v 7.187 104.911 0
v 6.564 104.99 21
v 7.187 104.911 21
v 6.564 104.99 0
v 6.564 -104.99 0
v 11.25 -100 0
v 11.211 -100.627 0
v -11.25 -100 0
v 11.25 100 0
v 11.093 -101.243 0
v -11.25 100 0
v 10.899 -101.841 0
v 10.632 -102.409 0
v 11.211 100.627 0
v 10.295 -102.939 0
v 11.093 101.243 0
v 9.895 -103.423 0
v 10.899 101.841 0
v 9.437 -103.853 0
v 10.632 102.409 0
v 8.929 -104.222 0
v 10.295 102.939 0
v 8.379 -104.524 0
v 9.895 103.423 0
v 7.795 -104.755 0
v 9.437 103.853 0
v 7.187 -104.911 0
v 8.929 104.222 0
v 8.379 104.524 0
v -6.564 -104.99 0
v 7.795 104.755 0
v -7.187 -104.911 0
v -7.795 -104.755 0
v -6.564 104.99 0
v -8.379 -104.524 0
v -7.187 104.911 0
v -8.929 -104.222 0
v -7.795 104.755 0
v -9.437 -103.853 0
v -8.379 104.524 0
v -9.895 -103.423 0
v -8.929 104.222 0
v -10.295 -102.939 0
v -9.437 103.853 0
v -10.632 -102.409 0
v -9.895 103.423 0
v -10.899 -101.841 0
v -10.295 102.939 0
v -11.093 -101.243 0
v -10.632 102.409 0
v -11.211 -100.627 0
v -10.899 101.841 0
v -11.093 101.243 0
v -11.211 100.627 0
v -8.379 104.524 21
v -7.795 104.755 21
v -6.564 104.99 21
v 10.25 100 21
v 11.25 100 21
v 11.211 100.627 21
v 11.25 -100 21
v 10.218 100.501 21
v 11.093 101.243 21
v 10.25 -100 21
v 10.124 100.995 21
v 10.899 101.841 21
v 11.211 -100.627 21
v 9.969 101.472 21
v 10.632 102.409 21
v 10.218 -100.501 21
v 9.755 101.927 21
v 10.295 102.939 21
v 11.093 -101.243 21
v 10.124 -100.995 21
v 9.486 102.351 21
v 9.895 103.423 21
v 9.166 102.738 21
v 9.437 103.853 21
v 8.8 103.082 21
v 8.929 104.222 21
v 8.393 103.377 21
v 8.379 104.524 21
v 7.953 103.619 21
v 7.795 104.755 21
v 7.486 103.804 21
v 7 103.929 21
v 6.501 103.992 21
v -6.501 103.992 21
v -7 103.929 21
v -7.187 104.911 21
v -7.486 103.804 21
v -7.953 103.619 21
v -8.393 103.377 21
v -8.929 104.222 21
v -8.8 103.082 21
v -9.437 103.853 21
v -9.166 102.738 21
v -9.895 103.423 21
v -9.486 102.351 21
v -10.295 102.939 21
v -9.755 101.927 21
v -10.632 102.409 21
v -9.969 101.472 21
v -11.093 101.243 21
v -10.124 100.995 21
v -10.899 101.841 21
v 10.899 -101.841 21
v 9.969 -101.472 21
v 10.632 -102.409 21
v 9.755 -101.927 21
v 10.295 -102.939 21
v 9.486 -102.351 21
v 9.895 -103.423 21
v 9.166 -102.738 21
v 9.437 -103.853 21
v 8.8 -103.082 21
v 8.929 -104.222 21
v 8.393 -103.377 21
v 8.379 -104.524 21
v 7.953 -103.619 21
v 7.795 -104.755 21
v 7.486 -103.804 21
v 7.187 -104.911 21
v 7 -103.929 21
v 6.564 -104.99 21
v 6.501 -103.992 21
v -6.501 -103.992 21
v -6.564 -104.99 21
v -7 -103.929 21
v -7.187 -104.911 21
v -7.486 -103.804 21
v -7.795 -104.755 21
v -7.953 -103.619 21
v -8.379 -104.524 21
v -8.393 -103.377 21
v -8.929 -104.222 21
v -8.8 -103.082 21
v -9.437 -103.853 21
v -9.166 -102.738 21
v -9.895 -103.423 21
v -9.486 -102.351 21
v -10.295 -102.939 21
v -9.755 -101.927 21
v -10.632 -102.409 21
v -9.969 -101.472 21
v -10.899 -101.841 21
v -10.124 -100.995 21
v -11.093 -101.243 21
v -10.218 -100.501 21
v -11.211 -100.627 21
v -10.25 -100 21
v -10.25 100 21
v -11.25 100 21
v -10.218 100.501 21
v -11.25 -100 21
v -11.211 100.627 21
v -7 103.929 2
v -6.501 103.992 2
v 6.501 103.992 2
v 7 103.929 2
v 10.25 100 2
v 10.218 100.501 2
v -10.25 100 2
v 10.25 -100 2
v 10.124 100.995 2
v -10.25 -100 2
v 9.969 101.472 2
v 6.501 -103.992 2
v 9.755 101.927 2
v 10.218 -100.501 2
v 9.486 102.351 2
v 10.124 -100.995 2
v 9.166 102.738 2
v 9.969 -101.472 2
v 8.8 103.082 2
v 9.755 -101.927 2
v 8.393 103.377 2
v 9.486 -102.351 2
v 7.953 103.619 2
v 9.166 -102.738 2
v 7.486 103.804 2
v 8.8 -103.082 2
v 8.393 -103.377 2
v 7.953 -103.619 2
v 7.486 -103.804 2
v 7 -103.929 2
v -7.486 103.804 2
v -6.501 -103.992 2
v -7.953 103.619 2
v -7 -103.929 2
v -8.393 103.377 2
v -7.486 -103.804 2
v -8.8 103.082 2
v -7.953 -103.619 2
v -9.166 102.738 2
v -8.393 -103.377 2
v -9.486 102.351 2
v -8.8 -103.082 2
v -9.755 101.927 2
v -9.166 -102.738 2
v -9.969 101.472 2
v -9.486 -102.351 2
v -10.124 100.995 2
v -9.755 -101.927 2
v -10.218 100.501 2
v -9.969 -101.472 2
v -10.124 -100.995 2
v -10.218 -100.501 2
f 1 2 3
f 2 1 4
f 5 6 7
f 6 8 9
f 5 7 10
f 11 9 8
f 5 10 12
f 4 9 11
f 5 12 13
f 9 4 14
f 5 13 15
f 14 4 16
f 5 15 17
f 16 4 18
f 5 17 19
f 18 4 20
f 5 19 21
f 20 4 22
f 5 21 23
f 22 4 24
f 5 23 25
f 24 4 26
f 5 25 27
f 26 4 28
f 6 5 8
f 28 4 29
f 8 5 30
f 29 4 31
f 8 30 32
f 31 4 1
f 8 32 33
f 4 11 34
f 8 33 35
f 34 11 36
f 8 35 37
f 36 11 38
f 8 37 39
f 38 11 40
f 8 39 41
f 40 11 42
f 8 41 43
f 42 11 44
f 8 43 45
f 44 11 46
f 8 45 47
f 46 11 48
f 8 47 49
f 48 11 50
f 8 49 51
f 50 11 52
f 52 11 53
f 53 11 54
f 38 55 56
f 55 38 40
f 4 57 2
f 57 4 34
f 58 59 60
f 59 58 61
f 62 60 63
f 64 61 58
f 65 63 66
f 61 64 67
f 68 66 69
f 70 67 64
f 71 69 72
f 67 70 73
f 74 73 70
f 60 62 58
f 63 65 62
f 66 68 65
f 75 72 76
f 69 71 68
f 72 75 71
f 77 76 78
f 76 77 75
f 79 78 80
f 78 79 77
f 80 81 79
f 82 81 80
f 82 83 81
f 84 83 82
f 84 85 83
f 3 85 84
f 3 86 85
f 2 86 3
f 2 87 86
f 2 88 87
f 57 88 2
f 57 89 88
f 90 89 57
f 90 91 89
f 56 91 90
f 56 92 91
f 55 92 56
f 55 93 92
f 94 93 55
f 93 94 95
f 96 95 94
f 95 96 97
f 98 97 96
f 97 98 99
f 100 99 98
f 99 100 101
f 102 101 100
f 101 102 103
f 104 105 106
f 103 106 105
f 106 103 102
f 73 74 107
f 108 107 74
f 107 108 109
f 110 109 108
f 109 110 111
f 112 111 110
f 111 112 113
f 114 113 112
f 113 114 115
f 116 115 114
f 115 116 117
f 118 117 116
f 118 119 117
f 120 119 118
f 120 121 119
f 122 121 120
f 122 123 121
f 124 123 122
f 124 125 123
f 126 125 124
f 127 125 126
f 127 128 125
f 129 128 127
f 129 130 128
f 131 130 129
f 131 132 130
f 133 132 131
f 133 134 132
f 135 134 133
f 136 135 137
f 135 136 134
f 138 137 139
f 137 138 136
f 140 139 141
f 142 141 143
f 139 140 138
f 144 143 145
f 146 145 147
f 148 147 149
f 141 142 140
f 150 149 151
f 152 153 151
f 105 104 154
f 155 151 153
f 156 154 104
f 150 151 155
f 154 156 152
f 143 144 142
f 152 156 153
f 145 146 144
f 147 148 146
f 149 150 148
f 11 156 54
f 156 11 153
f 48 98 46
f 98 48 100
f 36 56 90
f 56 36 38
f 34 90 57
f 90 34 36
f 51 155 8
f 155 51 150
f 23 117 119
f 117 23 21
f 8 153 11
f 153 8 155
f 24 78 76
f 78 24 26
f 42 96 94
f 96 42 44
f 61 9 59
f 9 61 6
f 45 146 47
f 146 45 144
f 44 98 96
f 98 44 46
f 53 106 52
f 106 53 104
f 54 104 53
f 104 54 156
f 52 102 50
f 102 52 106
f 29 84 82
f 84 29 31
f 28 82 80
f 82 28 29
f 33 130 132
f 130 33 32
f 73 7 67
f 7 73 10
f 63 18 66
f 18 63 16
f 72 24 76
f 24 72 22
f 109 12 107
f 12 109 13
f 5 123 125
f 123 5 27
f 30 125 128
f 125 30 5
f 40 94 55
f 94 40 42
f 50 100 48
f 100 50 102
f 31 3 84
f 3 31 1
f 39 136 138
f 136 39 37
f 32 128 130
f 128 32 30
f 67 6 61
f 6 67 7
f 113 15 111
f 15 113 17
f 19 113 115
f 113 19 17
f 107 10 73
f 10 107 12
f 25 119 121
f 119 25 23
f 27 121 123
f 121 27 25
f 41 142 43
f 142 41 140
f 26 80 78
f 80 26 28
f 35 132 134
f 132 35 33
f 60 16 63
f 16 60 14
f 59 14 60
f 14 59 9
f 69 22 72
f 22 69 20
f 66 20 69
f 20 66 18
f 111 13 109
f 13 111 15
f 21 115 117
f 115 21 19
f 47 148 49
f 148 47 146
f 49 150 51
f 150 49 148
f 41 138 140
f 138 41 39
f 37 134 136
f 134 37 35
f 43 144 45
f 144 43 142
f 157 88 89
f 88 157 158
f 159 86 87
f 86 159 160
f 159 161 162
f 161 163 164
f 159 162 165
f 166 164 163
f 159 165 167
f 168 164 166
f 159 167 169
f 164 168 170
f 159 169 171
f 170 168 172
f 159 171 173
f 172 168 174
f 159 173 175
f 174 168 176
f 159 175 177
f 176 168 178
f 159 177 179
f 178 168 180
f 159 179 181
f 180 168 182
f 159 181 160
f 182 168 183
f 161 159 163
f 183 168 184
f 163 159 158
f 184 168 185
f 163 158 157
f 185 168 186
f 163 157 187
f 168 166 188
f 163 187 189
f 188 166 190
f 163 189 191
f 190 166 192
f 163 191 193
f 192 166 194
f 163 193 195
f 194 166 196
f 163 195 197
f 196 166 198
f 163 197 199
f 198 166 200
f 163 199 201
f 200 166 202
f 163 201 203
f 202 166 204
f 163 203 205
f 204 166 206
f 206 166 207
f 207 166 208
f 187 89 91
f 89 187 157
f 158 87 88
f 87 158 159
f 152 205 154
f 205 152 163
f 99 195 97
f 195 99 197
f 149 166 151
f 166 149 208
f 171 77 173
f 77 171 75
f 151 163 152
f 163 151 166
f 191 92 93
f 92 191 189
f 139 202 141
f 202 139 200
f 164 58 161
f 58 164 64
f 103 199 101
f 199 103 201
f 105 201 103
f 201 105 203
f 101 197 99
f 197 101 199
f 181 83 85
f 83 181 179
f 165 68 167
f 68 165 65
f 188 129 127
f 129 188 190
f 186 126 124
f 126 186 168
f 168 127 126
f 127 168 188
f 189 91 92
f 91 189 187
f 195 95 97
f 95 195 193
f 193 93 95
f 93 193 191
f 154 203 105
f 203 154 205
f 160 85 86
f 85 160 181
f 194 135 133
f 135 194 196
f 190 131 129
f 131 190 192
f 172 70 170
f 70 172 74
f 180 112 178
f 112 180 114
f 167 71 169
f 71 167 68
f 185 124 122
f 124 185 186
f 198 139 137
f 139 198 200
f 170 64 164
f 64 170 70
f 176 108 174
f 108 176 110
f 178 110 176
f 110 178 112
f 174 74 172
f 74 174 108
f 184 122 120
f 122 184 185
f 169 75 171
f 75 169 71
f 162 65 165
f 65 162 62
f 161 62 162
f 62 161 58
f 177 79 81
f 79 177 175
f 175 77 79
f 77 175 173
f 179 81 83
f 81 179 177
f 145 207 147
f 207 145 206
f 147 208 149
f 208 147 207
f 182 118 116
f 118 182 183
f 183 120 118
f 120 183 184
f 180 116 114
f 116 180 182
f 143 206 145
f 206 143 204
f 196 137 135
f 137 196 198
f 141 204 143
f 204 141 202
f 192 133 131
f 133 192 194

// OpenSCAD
$fn = 50;


difference() {
	union() {
		hull() {
			translate(v = [-6.2500000000, 100.0000000000, 0]) {
				cylinder(h = 21, r = 5);
			}
			translate(v = [6.2500000000, 100.0000000000, 0]) {
				cylinder(h = 21, r = 5);
			}
			translate(v = [-6.2500000000, -100.0000000000, 0]) {
				cylinder(h = 21, r = 5);
			}
			translate(v = [6.2500000000, -100.0000000000, 0]) {
				cylinder(h = 21, r = 5);
			}
		}
	}
	union() {
		translate(v = [0, 0, 2]) {
			hull() {
				translate(v = [-6.2500000000, 100.0000000000, 0]) {
					cylinder(h = 19, r = 4);
				}
				translate(v = [6.2500000000, 100.0000000000, 0]) {
					cylinder(h = 19, r = 4);
				}
				translate(v = [-6.2500000000, -100.0000000000, 0]) {
					cylinder(h = 19, r = 4);
				}
				translate(v = [6.2500000000, -100.0000000000, 0]) {
					cylinder(h = 19, r = 4);
				}
			}
		}
	}
}
